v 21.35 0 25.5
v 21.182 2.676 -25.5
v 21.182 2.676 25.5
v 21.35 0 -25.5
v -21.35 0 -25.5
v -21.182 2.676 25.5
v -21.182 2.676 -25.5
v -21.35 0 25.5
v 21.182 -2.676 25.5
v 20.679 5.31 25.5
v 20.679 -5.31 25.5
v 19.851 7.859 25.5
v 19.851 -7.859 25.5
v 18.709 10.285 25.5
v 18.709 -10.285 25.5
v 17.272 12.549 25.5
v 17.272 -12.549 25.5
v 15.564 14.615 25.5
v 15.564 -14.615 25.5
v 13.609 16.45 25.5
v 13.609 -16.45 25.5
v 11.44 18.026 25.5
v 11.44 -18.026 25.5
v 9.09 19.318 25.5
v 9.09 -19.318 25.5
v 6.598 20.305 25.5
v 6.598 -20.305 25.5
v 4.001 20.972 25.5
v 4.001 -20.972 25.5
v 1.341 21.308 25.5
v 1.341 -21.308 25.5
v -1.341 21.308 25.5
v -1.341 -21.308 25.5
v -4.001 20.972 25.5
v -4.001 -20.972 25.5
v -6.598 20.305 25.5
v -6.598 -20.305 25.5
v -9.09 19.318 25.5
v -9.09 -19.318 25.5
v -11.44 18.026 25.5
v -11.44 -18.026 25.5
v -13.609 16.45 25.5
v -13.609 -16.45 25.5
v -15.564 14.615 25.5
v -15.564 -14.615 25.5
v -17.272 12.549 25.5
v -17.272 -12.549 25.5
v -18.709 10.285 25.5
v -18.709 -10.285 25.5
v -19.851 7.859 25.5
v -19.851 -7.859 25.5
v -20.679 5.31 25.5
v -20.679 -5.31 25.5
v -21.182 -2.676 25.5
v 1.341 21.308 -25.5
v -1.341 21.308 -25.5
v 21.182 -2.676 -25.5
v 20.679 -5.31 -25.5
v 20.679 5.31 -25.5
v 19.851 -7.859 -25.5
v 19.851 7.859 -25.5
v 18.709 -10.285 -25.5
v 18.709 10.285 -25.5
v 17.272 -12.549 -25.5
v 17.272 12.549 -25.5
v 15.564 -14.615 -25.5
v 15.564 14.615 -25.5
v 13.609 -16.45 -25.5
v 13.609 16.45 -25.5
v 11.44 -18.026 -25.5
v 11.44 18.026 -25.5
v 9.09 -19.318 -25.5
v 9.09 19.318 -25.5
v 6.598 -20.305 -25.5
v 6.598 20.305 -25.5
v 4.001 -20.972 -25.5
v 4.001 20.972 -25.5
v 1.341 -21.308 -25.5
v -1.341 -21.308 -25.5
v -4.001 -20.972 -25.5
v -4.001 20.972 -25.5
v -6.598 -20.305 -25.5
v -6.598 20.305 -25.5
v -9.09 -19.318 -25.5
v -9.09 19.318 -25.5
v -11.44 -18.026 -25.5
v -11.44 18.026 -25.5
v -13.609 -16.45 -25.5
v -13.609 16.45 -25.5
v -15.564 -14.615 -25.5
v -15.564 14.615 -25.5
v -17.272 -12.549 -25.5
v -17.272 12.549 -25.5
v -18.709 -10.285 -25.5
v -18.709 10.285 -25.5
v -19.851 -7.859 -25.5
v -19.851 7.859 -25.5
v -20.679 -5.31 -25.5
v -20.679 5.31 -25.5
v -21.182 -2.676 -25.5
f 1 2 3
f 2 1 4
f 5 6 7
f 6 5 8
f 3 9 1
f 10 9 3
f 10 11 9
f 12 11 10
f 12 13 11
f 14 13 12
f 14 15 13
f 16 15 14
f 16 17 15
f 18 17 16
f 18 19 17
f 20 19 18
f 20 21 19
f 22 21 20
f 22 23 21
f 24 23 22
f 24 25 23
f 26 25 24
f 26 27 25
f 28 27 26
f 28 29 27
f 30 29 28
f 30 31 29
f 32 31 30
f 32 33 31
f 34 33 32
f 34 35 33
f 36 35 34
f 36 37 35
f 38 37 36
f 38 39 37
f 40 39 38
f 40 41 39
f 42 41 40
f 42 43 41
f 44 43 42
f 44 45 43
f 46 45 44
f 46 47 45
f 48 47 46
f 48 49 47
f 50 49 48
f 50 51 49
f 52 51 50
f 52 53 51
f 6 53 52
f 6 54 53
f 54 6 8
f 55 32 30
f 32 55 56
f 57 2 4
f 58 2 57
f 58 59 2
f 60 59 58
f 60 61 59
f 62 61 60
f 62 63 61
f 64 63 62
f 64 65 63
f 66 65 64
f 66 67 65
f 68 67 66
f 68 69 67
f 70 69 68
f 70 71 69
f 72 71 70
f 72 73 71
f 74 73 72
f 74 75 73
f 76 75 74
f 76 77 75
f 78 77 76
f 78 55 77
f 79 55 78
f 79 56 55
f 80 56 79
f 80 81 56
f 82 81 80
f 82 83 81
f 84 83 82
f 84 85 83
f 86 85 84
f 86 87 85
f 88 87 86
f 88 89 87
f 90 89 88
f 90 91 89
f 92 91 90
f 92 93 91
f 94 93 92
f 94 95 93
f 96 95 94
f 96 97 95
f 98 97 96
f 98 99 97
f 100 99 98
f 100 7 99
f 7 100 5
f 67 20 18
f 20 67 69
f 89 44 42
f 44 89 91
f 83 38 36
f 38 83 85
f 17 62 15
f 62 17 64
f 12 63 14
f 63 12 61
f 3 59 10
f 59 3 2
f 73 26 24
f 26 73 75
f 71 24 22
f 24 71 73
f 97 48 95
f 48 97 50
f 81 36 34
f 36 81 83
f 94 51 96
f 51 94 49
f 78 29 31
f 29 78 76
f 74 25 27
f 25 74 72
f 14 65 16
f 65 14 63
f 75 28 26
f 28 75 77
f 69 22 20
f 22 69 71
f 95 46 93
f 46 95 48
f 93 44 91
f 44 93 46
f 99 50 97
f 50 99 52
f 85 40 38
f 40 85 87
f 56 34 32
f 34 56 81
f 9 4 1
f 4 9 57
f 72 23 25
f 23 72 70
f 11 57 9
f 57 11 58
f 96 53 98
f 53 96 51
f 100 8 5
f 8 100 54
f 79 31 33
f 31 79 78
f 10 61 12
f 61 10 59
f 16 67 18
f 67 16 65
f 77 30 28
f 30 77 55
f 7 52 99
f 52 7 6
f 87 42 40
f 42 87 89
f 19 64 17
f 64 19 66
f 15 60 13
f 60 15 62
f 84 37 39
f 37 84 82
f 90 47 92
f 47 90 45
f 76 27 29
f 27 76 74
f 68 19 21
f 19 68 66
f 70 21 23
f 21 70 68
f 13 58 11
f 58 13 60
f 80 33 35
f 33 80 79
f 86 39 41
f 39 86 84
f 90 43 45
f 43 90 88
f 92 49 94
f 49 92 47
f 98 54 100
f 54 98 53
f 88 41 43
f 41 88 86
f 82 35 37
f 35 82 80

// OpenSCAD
$fn = 50;


difference() {
	union() {
		translate(v = [0, 0, -25.5000000000]) {
			cylinder(h = 51, r = 21.3500000000);
		}
	}
	union() {
		translate(v = [0, 0, -100.0000000000]) {
			cylinder(h = 200, r = 0);
		}
	}
}
